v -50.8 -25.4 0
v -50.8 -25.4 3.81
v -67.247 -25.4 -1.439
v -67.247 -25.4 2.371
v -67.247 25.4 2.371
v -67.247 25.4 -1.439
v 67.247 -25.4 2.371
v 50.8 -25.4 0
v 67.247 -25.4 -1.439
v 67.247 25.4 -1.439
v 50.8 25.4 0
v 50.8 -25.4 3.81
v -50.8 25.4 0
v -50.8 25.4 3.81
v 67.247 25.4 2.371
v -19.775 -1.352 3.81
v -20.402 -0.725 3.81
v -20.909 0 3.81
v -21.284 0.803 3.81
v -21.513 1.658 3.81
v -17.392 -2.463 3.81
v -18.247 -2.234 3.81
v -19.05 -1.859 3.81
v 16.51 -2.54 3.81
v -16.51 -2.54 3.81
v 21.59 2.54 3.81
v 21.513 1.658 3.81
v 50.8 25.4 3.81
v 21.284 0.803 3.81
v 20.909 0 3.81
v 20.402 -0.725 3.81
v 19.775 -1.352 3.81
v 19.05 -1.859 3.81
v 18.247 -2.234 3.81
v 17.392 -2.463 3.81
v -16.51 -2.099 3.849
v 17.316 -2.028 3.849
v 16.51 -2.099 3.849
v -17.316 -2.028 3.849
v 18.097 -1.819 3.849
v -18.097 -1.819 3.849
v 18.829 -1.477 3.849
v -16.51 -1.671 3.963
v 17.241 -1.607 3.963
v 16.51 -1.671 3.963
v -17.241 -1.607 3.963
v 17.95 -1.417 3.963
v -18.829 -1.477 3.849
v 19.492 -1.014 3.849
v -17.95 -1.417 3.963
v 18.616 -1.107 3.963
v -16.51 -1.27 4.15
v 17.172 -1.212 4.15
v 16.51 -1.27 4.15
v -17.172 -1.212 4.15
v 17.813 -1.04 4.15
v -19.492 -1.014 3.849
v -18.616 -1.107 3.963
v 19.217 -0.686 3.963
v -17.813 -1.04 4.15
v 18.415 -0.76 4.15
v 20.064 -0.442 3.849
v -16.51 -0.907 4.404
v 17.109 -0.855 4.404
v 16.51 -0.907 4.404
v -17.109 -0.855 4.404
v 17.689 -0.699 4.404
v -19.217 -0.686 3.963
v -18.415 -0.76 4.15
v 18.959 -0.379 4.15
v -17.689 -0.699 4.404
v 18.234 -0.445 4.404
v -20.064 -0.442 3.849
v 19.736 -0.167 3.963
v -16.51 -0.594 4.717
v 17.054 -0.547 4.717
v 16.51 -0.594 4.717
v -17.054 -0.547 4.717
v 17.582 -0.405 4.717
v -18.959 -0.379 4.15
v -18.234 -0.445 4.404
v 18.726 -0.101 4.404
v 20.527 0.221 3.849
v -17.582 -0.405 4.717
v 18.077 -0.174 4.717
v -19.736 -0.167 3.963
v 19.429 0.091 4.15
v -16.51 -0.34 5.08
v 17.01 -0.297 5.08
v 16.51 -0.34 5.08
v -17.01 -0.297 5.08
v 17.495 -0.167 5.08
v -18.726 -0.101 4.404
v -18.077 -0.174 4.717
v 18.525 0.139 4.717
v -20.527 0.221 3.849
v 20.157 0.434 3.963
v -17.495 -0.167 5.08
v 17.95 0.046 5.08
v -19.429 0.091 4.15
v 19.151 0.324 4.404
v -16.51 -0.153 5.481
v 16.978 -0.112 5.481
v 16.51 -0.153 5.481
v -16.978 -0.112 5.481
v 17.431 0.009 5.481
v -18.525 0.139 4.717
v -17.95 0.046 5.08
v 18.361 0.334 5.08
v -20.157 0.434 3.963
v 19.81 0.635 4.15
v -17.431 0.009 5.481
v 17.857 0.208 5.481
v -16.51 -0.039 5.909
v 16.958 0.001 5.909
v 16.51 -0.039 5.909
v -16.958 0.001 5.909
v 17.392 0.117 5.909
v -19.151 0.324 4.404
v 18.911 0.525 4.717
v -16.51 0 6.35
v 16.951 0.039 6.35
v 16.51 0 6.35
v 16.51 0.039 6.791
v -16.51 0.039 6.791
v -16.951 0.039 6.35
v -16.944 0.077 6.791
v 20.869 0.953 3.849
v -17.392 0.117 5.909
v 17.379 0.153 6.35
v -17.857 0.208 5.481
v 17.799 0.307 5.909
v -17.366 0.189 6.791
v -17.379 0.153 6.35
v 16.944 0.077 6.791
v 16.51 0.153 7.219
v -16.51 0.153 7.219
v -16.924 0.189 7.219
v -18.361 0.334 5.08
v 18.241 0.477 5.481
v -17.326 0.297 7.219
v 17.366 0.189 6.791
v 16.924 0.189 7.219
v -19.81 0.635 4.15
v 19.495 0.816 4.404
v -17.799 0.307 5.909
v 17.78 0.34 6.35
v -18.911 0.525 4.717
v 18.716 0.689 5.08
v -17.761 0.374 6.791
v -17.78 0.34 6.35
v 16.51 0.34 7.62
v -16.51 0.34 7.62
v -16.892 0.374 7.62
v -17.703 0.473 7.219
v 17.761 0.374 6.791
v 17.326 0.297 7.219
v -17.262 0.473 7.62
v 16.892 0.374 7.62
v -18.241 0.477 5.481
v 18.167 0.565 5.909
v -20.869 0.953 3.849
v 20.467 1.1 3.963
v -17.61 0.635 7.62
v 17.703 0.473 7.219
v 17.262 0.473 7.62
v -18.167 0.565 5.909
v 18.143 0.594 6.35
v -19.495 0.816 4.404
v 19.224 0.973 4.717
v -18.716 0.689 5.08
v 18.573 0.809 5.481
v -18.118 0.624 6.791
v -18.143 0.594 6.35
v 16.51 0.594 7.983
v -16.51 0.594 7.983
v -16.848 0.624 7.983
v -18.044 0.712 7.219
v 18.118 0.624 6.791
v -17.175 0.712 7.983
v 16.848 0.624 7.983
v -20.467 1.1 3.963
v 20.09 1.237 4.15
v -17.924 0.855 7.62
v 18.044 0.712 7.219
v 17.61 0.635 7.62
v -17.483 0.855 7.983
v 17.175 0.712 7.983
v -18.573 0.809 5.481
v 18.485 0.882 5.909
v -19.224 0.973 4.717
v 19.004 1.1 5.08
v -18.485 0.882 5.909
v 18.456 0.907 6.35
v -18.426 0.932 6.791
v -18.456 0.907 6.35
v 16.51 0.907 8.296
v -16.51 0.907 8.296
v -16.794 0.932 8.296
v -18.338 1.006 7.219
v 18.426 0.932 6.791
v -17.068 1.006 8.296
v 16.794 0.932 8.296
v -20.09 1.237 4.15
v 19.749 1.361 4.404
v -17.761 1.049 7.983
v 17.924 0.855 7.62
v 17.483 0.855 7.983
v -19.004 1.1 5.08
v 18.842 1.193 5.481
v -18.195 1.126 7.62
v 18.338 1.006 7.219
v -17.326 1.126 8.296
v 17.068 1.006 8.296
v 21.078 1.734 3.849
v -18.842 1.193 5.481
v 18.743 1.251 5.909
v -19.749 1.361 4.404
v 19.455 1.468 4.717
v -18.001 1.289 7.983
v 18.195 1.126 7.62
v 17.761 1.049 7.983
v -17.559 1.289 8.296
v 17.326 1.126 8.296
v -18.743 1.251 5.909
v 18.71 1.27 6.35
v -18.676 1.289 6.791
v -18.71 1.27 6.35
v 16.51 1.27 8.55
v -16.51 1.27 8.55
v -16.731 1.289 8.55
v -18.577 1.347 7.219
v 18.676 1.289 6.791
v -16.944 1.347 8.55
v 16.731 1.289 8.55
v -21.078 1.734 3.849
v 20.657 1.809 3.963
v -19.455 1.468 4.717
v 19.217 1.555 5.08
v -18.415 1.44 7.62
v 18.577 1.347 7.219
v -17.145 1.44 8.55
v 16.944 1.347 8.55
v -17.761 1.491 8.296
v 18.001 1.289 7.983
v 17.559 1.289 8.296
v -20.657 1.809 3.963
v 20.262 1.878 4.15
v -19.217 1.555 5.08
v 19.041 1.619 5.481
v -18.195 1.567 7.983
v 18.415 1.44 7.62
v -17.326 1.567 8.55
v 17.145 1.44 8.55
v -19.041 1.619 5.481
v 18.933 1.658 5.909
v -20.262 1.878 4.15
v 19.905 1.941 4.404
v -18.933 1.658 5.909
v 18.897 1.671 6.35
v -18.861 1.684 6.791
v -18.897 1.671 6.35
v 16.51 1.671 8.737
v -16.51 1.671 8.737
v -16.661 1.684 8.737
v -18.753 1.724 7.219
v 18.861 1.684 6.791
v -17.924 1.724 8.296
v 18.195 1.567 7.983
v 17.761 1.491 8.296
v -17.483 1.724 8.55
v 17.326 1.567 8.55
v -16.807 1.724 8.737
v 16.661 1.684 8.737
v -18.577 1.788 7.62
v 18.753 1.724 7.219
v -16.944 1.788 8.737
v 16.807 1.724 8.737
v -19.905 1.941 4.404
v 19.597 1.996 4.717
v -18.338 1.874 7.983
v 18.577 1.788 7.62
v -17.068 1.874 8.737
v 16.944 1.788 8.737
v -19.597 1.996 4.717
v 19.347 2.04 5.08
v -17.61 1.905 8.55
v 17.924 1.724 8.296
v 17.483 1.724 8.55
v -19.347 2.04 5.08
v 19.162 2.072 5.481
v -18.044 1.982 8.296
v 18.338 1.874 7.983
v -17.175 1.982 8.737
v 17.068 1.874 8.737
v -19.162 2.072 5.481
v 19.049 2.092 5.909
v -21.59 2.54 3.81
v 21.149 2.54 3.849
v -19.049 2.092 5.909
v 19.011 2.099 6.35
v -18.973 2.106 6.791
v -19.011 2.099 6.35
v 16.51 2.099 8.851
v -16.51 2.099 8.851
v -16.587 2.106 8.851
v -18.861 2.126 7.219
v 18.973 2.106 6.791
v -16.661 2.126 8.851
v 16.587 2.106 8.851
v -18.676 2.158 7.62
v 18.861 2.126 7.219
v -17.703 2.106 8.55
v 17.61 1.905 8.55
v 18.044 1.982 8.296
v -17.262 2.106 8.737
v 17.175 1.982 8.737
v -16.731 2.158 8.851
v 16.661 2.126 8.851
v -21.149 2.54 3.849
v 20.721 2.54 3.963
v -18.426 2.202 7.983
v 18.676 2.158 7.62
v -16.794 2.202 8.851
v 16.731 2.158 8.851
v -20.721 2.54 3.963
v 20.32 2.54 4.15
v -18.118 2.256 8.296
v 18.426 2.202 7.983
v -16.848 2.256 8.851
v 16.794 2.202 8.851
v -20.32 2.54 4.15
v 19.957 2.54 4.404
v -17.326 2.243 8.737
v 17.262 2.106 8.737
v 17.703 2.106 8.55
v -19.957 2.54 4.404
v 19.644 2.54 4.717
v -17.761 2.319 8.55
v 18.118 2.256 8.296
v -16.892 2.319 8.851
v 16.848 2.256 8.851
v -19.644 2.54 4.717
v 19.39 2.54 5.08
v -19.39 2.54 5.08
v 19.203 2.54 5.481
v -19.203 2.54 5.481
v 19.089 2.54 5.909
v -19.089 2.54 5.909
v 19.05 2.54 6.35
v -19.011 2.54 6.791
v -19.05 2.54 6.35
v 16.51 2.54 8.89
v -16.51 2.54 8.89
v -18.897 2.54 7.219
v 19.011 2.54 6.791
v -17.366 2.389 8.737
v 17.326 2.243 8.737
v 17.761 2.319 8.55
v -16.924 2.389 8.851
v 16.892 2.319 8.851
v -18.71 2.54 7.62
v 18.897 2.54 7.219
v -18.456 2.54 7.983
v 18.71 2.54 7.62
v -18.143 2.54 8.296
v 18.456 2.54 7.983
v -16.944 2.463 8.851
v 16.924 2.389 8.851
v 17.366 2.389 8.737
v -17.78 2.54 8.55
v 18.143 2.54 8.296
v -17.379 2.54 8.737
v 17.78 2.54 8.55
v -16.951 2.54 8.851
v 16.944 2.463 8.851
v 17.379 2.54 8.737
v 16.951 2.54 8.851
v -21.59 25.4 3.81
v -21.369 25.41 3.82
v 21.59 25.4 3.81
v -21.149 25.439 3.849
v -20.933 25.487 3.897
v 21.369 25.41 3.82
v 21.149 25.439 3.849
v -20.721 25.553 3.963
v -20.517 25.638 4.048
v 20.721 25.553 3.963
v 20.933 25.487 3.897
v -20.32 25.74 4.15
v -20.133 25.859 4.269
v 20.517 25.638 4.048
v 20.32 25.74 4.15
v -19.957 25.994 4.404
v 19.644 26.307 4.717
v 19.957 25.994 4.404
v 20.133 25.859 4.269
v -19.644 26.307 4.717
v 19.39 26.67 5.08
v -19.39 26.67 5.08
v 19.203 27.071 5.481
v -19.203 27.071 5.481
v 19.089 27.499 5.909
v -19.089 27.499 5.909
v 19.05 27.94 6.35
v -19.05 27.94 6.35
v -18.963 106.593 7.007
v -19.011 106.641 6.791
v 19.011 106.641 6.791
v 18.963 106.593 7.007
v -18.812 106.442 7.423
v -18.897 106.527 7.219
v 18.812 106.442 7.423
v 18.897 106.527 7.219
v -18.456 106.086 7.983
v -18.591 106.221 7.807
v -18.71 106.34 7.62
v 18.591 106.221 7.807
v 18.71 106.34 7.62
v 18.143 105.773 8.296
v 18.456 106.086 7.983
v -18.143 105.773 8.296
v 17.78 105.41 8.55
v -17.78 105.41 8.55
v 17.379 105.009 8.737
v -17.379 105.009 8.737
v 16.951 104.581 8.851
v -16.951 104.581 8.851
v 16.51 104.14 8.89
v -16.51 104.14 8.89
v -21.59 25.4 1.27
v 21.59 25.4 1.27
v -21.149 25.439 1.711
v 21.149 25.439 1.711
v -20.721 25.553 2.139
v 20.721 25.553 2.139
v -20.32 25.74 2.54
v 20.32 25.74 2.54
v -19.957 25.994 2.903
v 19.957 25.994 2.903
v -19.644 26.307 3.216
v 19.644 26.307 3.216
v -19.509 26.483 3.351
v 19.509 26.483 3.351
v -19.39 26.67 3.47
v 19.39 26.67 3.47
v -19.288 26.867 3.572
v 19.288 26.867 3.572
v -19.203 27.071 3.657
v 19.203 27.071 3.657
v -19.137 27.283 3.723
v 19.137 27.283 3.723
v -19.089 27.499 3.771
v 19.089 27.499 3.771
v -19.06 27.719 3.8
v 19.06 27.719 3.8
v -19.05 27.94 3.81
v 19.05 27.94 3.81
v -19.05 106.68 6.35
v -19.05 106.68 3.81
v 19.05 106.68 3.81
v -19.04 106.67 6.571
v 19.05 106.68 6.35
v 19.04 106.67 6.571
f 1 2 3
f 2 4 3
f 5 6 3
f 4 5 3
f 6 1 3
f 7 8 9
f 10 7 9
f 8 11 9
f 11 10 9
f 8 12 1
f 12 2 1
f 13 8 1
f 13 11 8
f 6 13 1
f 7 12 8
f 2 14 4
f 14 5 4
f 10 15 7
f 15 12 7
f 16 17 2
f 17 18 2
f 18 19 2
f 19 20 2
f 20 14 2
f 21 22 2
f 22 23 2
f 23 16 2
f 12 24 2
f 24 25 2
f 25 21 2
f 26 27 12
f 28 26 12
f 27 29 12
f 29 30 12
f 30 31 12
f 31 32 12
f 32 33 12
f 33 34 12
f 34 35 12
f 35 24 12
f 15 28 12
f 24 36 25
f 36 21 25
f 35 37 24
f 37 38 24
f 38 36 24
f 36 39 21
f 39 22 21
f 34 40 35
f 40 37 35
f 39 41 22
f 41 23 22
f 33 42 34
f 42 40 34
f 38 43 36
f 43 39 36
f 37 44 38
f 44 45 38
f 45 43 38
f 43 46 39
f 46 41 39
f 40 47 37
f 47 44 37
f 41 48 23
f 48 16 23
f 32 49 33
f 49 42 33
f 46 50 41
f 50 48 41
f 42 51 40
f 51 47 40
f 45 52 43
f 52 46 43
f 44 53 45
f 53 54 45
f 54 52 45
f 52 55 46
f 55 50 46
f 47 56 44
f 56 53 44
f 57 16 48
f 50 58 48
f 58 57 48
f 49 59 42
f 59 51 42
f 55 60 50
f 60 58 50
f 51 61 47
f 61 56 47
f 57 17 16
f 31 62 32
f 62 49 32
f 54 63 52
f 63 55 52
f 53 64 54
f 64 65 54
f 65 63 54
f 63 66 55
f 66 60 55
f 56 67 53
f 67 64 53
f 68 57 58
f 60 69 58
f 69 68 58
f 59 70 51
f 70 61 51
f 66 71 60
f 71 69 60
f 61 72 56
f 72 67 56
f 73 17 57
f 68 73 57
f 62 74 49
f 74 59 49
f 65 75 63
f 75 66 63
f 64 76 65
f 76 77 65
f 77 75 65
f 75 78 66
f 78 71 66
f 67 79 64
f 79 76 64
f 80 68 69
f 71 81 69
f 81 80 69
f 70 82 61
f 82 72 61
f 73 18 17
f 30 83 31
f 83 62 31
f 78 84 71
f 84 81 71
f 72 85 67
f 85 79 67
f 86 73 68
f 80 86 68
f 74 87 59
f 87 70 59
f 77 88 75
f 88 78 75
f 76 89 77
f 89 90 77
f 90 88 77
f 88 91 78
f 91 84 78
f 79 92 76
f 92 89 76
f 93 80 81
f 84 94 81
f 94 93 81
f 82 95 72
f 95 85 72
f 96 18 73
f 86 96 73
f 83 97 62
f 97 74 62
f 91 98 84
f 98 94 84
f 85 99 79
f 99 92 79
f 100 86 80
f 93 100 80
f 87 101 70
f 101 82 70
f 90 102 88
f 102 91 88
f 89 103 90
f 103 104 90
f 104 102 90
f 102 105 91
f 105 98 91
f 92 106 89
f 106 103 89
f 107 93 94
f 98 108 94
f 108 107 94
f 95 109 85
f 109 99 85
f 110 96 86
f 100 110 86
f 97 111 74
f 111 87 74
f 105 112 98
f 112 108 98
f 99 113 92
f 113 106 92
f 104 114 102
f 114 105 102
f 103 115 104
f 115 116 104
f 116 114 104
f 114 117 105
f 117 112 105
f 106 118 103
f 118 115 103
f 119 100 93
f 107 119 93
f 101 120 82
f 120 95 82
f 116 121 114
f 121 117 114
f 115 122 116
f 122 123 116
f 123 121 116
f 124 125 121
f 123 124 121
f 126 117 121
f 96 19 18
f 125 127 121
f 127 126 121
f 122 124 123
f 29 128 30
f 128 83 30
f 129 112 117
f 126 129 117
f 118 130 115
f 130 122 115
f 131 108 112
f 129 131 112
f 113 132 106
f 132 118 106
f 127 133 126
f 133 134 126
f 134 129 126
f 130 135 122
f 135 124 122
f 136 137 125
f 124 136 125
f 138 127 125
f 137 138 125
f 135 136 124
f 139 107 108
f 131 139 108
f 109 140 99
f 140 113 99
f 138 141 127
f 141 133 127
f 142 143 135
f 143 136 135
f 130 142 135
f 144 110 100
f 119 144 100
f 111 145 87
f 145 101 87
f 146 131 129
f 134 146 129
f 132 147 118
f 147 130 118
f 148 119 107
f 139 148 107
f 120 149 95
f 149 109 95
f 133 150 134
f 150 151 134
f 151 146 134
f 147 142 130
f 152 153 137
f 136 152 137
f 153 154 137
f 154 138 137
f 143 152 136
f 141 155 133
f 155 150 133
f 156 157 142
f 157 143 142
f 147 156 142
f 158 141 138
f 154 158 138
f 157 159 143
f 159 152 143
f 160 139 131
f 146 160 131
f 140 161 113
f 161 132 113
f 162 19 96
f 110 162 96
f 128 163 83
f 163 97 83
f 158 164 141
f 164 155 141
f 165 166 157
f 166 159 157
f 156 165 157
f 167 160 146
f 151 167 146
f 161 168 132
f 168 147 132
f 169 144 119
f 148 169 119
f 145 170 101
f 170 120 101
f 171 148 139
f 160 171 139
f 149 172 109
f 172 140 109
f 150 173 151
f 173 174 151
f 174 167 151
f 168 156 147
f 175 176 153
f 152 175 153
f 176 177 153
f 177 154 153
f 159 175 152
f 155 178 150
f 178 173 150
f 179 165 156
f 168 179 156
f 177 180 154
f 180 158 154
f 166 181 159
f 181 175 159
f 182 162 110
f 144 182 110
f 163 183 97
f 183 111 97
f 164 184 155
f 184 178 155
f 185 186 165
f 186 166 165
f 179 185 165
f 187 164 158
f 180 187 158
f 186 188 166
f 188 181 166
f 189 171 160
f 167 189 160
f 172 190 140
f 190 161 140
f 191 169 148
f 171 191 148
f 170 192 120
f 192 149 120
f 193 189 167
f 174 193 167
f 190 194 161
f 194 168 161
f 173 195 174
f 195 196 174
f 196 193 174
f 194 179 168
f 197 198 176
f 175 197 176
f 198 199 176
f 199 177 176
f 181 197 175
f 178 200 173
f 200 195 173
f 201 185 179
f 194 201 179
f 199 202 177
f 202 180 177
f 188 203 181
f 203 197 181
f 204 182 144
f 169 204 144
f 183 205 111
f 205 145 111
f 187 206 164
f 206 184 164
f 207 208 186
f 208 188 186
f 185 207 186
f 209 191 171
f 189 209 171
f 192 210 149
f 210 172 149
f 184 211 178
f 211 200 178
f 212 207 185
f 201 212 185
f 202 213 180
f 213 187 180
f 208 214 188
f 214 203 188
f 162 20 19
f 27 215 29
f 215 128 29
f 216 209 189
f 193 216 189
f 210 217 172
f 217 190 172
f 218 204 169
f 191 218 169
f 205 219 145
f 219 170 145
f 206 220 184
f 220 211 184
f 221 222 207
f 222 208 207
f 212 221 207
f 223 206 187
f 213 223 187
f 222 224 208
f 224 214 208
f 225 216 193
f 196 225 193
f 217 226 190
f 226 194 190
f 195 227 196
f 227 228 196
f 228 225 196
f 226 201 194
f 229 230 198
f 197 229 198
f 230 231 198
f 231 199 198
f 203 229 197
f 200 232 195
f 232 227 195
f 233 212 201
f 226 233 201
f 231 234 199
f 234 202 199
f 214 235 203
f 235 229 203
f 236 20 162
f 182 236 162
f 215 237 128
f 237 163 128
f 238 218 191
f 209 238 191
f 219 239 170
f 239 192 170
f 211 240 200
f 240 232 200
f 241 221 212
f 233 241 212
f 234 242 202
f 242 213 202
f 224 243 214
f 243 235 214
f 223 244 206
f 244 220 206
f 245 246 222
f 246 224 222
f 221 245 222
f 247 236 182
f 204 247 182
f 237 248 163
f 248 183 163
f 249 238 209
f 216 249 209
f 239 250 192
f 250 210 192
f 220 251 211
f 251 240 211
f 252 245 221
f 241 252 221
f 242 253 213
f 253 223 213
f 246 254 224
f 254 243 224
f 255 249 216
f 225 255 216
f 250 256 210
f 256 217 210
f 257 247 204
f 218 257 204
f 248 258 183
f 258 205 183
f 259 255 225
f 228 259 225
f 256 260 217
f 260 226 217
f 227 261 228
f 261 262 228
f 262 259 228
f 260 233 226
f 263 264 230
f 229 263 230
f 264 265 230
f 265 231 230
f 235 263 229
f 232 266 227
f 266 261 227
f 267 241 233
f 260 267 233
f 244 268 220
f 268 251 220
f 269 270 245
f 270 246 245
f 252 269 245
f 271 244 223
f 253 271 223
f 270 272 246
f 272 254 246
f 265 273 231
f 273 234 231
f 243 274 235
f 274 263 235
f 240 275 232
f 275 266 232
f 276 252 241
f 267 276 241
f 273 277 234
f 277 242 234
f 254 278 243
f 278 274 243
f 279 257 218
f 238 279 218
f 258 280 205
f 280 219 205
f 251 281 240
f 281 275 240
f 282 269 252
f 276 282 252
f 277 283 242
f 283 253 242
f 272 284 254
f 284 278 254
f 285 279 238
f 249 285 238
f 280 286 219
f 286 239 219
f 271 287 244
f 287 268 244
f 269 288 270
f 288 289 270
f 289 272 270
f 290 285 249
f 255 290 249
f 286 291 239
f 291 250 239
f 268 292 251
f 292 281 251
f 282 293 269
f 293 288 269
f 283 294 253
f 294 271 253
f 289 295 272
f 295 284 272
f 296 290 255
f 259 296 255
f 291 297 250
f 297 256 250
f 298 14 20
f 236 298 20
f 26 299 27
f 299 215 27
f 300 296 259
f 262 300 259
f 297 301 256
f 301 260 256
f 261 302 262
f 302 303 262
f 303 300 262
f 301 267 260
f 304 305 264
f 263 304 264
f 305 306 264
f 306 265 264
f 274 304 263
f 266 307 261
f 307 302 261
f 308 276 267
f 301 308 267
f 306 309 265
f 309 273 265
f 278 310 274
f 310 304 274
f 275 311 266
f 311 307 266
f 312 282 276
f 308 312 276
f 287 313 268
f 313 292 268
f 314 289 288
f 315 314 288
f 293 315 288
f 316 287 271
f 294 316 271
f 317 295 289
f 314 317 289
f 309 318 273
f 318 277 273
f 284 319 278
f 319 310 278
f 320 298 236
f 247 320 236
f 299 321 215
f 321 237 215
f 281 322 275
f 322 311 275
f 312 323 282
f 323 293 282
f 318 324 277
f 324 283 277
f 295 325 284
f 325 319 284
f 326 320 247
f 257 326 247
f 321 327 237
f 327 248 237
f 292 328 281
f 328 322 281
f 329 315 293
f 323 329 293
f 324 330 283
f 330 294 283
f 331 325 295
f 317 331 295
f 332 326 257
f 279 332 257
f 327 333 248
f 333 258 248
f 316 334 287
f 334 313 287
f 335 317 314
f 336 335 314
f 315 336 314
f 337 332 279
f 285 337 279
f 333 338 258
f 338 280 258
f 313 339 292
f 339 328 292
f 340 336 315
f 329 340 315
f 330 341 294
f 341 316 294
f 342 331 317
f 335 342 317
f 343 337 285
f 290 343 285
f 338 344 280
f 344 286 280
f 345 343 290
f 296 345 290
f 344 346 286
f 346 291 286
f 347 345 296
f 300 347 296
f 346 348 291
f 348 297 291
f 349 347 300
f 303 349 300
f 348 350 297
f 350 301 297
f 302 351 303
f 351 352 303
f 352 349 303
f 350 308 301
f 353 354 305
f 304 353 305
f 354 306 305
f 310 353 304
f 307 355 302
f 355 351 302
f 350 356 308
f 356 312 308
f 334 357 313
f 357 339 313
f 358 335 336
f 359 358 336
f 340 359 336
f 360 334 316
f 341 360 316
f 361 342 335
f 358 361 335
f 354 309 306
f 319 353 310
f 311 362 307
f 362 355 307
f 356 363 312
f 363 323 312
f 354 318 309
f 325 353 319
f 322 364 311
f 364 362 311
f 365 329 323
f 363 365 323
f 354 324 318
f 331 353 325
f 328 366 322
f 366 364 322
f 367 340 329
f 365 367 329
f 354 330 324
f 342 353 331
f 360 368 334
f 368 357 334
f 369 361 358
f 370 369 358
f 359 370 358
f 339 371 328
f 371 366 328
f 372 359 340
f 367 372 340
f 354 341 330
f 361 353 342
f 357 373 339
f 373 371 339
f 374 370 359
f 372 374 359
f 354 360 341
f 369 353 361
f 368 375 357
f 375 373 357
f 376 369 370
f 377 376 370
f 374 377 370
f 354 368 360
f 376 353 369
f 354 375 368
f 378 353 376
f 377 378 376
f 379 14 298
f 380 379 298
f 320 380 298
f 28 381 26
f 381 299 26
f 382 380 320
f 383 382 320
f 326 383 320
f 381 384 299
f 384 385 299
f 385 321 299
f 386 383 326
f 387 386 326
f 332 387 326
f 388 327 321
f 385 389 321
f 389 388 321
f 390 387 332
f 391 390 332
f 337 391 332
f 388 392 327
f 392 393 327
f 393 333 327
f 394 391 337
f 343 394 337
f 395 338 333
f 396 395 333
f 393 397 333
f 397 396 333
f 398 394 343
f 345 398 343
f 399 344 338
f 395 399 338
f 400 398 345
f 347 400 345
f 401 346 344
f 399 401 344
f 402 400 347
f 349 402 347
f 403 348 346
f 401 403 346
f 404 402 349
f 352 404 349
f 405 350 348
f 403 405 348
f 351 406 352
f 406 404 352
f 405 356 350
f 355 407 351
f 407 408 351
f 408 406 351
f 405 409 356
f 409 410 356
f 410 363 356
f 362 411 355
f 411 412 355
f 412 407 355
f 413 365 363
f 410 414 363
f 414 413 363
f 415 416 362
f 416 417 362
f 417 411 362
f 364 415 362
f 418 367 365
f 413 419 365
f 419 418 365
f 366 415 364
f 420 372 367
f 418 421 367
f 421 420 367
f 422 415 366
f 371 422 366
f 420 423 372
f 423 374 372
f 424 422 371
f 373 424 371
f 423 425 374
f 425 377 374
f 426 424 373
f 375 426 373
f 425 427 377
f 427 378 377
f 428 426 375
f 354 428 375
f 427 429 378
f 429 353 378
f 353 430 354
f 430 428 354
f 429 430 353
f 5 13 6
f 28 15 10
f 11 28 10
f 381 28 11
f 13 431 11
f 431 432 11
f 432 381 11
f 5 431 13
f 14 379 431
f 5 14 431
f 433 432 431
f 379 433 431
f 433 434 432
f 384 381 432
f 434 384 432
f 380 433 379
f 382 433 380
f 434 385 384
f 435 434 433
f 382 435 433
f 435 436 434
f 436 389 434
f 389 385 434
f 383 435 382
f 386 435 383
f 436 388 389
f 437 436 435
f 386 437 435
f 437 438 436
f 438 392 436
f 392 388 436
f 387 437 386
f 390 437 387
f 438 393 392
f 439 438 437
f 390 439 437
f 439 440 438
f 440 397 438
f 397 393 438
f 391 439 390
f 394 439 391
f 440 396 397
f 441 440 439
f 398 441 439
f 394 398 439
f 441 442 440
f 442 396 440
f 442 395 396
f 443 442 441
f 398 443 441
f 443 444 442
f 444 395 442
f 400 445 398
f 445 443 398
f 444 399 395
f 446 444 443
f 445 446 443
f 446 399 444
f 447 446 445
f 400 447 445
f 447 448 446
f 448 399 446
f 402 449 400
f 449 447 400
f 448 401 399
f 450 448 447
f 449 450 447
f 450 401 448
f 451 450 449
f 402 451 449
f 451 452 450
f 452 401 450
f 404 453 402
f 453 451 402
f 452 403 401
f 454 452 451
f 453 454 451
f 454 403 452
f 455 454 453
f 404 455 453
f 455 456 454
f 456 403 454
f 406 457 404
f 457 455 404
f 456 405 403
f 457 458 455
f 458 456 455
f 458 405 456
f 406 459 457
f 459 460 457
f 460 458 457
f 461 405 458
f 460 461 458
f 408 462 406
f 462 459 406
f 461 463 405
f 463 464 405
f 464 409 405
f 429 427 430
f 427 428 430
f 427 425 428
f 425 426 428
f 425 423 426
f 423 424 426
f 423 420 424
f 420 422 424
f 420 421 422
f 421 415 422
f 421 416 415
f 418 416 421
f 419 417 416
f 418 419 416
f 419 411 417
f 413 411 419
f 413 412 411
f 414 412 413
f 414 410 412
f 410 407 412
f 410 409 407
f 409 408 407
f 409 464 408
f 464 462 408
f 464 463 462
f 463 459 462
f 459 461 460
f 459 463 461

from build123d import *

# Parameters (mm, degrees)
SKETCH1_W           = 101.6
SKETCH1_H           = 50.8
BOSS_EXTRUDE2_DEPTH = 3.8099999999999996
SKETCH2_W           = 50.8
SKETCH2_H           = 16.50999999999999
BOSS_EXTRUDE4_DEPTH = 3.8099999999999996
BOSS_EXTRUDE5_DEPTH = 5.08
FILLET1_R           = 2.54
FILLET18_R          = 2.54
FILLET19_R          = 2.54
FILLET20_R          = 2.54


with BuildPart() as part:
    # Sketch1 → Boss-Extrude2 (new body)
    with BuildSketch(Plane.XY):
        Rectangle(SKETCH1_W, SKETCH1_H)
    extrude(amount=BOSS_EXTRUDE2_DEPTH)

    # Sketch2 → Boss-Extrude4 (add, along a direction that is not the sketch's normal)
    with BuildSketch(Plane(origin=(0.71668285194542, 0, 8.191722482228297), x_dir=(0, 1, 0), z_dir=(-0.08715574274765836, 0, -0.9961946980917455))):
        with Locations((-3.55e-15, 58.52962728319207)):
            Rectangle(SKETCH2_W, SKETCH2_H)
    boss_extrude4 = extrude(amount=BOSS_EXTRUDE4_DEPTH, dir=(0, 0, -1))

    # Mirror1: Boss-Extrude4 across plane
    add(boss_extrude4.mirror(Plane.ZY))

    # Sketch4 → Boss-Extrude5 (add)
    with BuildSketch(Plane.XY.offset(3.8099999999999996)):
        Polygon((-19.05, 0), (19.05, 7e-15), (19.049999999999972, 106.68), (-19.050000000000015, 106.67999999999999), align=None)
    extrude(amount=BOSS_EXTRUDE5_DEPTH)

    # Fillet1
    fillet1_edges = [part.edges().sort_by_distance(p)[0] for p in [
        (-19.05, 12.700000000000003, 3.8099999999999996),
        (0, 3.5e-15, 3.8099999999999996),
        (-19.05, 0, 6.35),
        (19.049999999999997, 12.700000000000001, 3.8099999999999996),
        (19.05, 7e-15, 6.35),
        (-2.132e-14, 106.68, 8.89),
        (-19.050000000000008, 53.339999999999996, 8.89),
        (0, 3.5e-15, 8.89),
        (19.049999999999986, 53.34000000000001, 8.89),
    ]]
    fillet(fillet1_edges, radius=FILLET1_R - 0.0001)  # a hair under: the kernel refuses the full size

    # Fillet18
    fillet18_edges = [part.edges().sort_by_distance(p)[0] for p in [
        (-7.11e-15, 25.399999999999995, 3.8099999999999996),
    ]]
    fillet(fillet18_edges, radius=FILLET18_R)

    # Fillet19
    fillet19_edges = [part.edges().sort_by_distance(p)[0] for p in [
        (19.049999999999994, 25.399999999999995, 3.8099499999999993),
    ]]
    fillet(fillet19_edges, radius=FILLET19_R - 0.0001)  # a hair under: the kernel refuses the full size

    # Fillet20
    fillet20_edges = [part.edges().sort_by_distance(p)[0] for p in [
        (-19.050000000000004, 25.399999999999995, 3.8099499999999997),
    ]]
    fillet(fillet20_edges, radius=FILLET20_R - 0.0001)  # a hair under: the kernel refuses the full size


solid = part.part
